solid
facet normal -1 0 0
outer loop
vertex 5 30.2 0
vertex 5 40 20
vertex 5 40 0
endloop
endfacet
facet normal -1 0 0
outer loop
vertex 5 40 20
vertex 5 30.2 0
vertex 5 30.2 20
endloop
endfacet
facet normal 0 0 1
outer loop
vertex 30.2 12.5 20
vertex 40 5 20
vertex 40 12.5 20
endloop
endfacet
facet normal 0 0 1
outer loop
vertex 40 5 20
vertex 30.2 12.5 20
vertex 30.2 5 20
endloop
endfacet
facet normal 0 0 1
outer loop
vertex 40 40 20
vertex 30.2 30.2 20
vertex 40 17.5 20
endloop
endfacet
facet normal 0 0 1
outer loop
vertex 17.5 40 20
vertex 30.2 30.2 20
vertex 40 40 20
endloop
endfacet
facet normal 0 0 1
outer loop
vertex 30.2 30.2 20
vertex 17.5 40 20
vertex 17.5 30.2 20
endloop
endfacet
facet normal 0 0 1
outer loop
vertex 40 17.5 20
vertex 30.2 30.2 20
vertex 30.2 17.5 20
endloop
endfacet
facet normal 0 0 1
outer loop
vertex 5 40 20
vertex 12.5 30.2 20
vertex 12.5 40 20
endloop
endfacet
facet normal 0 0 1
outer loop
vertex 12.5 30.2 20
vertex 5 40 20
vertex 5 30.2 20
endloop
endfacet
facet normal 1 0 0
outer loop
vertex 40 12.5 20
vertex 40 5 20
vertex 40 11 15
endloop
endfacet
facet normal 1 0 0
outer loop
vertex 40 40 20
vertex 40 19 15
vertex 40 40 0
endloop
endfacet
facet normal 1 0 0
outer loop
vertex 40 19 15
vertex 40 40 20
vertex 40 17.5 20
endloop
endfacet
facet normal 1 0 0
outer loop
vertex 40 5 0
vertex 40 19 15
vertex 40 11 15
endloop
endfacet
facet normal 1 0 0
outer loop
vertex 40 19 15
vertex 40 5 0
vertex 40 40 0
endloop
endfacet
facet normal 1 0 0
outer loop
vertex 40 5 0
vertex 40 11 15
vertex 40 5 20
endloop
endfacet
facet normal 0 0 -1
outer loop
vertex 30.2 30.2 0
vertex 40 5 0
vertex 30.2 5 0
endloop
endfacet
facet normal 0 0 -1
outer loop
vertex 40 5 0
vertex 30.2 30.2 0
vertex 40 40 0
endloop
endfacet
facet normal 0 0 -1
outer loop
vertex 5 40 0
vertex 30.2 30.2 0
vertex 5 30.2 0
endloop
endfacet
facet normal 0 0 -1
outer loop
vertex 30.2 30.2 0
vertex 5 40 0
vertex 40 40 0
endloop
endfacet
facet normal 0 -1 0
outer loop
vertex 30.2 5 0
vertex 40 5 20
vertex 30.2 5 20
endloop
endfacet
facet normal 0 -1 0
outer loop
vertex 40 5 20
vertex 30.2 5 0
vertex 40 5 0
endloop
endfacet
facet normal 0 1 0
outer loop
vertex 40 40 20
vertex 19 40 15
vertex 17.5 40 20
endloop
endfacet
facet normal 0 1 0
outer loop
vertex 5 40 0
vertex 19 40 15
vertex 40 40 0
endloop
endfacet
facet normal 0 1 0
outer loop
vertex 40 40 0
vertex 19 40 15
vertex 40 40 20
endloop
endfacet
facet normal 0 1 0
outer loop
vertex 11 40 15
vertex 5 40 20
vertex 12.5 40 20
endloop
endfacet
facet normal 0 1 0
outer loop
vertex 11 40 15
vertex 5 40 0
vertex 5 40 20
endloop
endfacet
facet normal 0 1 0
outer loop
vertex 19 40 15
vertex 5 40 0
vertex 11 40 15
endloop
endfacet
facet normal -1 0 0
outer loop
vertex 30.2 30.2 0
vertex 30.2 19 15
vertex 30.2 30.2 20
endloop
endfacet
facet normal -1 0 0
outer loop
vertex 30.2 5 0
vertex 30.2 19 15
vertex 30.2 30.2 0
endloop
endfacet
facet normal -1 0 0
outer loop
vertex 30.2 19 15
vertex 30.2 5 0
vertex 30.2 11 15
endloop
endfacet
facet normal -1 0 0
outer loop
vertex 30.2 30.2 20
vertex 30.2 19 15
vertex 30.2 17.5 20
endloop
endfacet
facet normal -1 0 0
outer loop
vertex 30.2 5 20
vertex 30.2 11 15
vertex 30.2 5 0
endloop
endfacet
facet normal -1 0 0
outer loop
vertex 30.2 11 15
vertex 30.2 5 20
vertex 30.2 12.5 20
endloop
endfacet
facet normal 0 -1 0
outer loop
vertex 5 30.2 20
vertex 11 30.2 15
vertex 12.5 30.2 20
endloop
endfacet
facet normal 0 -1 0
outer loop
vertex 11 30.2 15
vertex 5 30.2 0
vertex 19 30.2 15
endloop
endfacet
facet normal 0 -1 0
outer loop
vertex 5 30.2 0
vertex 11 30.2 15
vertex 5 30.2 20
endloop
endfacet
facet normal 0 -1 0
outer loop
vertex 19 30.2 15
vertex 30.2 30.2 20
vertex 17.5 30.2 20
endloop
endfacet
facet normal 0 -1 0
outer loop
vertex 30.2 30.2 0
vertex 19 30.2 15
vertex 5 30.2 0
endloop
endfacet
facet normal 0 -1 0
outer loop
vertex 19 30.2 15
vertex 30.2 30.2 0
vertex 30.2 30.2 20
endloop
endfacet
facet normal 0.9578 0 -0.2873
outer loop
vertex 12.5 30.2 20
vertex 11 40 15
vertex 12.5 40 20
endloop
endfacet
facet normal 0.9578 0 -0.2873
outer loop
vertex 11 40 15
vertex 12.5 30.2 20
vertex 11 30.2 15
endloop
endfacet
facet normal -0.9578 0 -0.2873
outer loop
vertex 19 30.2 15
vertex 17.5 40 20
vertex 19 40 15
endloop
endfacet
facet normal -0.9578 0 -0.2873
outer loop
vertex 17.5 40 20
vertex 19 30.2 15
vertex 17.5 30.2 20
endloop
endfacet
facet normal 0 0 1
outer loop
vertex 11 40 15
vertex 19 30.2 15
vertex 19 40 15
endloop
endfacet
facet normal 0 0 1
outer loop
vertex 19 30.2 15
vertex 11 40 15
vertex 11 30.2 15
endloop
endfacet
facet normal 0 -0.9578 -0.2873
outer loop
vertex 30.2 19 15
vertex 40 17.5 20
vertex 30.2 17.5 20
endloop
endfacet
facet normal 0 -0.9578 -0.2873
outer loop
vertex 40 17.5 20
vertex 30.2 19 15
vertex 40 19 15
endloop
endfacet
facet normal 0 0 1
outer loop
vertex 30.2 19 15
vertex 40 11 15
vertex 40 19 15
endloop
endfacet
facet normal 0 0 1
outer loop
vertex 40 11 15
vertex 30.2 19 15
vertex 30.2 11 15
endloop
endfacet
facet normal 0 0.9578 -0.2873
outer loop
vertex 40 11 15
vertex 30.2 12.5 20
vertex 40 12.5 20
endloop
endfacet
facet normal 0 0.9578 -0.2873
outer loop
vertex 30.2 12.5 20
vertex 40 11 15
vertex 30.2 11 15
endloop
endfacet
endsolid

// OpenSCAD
// file: globals.scad
/*
Most things in this file is represented as one millimeter, so keep that in mind while changing things.
Some of the setting are not mm but at variables that you can set, such as 2*x=2x and you are setting what x is.
I will try to specify when things are variables and not exact measurements.
*/

// printer slop
slop = 0.15;

obj_leg = 30;
leg_length = 5.5;
small_number = 0.001;
metal_core_rode_global = 5;


///////////////// number of holes /////////////////////
z_hole_number = 8;
other_holes = 8;

///////////////// Pins /////////////////////

//pins that poke out
ball_size = 10;
pin_height = 20;
pin_diameter = 6;


//holes
hole_ball_size = ball_size;
hole_pin_height = pin_height;
hole_pin_diameter = pin_diameter;

///////////////// Z THINGS /////////////////////

berring_slot_width = 7.5;
berring_slot_depth = 6.5;
metal_core_rode = 5;

///////////////// X THINGS /////////////////////

//male dove tails
male_dove_max_width=8;
male_dove_min_width=5;
male_dove_depth=5;
male_dove_height=obj_leg/2;

function scaled_male_dove_max_width() = male_dove_max_width - slop;
function scaled_male_dove_min_width() = male_dove_min_width - slop;
function scaled_male_dove_depth() = male_dove_depth - slop;

//female dove tails, this is found on the y mounts
girl_max_width=11;
girl_min_width=5;
girl_depth=5;
girl_height=obj_leg;


///////////////// Y THINGS /////////////////////
/*
The Y is so normal that all of those global variables at the top should change all of the setting in it, this section is set her incase there are variables set in the future development of this project.
*/

// stepper
motor_side_length = 43.2;
motor_bolt_hole_distance = 31;
motor_center_hole = 23;
motor_shaft_dia = 5;
motor_shaft_hole_dia = 5+2*slop;

// bolts etc.
bolt_hole_dia = 3+2*slop;
bolt_head_hole_dia = 5.8;

m4_bolt_hole_dia = 4+2*slop;
m4_bolt_head_hole_dia = 6.8+2*slop;


m3_nut_side = 5.65;
m3_nut_height = 2.3;
m4_nut_side = 6.85;
m4_nut_height = 3.1;

// threaded rod
lifter_rod_diam = 9.86;
hole_threaded_rod = lifter_rod_diam+2*slop;

// for the extensions
metal_rod_size = 9;
// main file
include <include.scad>;
include <globals.scad>;

height = 20;

module twist_corner_riser() {
    difference() {
        translate([5,5,0]) cube([35,35,height]);
        cube([30.2,30.2,height]);
        translate([15,30,height]) #rotate([-90,0,0]) male_dovetail(height=10);
        translate([40,15,height]) #rotate([-90,0,90]) male_dovetail(height=10);
    }
}

twist_corner_riser();
